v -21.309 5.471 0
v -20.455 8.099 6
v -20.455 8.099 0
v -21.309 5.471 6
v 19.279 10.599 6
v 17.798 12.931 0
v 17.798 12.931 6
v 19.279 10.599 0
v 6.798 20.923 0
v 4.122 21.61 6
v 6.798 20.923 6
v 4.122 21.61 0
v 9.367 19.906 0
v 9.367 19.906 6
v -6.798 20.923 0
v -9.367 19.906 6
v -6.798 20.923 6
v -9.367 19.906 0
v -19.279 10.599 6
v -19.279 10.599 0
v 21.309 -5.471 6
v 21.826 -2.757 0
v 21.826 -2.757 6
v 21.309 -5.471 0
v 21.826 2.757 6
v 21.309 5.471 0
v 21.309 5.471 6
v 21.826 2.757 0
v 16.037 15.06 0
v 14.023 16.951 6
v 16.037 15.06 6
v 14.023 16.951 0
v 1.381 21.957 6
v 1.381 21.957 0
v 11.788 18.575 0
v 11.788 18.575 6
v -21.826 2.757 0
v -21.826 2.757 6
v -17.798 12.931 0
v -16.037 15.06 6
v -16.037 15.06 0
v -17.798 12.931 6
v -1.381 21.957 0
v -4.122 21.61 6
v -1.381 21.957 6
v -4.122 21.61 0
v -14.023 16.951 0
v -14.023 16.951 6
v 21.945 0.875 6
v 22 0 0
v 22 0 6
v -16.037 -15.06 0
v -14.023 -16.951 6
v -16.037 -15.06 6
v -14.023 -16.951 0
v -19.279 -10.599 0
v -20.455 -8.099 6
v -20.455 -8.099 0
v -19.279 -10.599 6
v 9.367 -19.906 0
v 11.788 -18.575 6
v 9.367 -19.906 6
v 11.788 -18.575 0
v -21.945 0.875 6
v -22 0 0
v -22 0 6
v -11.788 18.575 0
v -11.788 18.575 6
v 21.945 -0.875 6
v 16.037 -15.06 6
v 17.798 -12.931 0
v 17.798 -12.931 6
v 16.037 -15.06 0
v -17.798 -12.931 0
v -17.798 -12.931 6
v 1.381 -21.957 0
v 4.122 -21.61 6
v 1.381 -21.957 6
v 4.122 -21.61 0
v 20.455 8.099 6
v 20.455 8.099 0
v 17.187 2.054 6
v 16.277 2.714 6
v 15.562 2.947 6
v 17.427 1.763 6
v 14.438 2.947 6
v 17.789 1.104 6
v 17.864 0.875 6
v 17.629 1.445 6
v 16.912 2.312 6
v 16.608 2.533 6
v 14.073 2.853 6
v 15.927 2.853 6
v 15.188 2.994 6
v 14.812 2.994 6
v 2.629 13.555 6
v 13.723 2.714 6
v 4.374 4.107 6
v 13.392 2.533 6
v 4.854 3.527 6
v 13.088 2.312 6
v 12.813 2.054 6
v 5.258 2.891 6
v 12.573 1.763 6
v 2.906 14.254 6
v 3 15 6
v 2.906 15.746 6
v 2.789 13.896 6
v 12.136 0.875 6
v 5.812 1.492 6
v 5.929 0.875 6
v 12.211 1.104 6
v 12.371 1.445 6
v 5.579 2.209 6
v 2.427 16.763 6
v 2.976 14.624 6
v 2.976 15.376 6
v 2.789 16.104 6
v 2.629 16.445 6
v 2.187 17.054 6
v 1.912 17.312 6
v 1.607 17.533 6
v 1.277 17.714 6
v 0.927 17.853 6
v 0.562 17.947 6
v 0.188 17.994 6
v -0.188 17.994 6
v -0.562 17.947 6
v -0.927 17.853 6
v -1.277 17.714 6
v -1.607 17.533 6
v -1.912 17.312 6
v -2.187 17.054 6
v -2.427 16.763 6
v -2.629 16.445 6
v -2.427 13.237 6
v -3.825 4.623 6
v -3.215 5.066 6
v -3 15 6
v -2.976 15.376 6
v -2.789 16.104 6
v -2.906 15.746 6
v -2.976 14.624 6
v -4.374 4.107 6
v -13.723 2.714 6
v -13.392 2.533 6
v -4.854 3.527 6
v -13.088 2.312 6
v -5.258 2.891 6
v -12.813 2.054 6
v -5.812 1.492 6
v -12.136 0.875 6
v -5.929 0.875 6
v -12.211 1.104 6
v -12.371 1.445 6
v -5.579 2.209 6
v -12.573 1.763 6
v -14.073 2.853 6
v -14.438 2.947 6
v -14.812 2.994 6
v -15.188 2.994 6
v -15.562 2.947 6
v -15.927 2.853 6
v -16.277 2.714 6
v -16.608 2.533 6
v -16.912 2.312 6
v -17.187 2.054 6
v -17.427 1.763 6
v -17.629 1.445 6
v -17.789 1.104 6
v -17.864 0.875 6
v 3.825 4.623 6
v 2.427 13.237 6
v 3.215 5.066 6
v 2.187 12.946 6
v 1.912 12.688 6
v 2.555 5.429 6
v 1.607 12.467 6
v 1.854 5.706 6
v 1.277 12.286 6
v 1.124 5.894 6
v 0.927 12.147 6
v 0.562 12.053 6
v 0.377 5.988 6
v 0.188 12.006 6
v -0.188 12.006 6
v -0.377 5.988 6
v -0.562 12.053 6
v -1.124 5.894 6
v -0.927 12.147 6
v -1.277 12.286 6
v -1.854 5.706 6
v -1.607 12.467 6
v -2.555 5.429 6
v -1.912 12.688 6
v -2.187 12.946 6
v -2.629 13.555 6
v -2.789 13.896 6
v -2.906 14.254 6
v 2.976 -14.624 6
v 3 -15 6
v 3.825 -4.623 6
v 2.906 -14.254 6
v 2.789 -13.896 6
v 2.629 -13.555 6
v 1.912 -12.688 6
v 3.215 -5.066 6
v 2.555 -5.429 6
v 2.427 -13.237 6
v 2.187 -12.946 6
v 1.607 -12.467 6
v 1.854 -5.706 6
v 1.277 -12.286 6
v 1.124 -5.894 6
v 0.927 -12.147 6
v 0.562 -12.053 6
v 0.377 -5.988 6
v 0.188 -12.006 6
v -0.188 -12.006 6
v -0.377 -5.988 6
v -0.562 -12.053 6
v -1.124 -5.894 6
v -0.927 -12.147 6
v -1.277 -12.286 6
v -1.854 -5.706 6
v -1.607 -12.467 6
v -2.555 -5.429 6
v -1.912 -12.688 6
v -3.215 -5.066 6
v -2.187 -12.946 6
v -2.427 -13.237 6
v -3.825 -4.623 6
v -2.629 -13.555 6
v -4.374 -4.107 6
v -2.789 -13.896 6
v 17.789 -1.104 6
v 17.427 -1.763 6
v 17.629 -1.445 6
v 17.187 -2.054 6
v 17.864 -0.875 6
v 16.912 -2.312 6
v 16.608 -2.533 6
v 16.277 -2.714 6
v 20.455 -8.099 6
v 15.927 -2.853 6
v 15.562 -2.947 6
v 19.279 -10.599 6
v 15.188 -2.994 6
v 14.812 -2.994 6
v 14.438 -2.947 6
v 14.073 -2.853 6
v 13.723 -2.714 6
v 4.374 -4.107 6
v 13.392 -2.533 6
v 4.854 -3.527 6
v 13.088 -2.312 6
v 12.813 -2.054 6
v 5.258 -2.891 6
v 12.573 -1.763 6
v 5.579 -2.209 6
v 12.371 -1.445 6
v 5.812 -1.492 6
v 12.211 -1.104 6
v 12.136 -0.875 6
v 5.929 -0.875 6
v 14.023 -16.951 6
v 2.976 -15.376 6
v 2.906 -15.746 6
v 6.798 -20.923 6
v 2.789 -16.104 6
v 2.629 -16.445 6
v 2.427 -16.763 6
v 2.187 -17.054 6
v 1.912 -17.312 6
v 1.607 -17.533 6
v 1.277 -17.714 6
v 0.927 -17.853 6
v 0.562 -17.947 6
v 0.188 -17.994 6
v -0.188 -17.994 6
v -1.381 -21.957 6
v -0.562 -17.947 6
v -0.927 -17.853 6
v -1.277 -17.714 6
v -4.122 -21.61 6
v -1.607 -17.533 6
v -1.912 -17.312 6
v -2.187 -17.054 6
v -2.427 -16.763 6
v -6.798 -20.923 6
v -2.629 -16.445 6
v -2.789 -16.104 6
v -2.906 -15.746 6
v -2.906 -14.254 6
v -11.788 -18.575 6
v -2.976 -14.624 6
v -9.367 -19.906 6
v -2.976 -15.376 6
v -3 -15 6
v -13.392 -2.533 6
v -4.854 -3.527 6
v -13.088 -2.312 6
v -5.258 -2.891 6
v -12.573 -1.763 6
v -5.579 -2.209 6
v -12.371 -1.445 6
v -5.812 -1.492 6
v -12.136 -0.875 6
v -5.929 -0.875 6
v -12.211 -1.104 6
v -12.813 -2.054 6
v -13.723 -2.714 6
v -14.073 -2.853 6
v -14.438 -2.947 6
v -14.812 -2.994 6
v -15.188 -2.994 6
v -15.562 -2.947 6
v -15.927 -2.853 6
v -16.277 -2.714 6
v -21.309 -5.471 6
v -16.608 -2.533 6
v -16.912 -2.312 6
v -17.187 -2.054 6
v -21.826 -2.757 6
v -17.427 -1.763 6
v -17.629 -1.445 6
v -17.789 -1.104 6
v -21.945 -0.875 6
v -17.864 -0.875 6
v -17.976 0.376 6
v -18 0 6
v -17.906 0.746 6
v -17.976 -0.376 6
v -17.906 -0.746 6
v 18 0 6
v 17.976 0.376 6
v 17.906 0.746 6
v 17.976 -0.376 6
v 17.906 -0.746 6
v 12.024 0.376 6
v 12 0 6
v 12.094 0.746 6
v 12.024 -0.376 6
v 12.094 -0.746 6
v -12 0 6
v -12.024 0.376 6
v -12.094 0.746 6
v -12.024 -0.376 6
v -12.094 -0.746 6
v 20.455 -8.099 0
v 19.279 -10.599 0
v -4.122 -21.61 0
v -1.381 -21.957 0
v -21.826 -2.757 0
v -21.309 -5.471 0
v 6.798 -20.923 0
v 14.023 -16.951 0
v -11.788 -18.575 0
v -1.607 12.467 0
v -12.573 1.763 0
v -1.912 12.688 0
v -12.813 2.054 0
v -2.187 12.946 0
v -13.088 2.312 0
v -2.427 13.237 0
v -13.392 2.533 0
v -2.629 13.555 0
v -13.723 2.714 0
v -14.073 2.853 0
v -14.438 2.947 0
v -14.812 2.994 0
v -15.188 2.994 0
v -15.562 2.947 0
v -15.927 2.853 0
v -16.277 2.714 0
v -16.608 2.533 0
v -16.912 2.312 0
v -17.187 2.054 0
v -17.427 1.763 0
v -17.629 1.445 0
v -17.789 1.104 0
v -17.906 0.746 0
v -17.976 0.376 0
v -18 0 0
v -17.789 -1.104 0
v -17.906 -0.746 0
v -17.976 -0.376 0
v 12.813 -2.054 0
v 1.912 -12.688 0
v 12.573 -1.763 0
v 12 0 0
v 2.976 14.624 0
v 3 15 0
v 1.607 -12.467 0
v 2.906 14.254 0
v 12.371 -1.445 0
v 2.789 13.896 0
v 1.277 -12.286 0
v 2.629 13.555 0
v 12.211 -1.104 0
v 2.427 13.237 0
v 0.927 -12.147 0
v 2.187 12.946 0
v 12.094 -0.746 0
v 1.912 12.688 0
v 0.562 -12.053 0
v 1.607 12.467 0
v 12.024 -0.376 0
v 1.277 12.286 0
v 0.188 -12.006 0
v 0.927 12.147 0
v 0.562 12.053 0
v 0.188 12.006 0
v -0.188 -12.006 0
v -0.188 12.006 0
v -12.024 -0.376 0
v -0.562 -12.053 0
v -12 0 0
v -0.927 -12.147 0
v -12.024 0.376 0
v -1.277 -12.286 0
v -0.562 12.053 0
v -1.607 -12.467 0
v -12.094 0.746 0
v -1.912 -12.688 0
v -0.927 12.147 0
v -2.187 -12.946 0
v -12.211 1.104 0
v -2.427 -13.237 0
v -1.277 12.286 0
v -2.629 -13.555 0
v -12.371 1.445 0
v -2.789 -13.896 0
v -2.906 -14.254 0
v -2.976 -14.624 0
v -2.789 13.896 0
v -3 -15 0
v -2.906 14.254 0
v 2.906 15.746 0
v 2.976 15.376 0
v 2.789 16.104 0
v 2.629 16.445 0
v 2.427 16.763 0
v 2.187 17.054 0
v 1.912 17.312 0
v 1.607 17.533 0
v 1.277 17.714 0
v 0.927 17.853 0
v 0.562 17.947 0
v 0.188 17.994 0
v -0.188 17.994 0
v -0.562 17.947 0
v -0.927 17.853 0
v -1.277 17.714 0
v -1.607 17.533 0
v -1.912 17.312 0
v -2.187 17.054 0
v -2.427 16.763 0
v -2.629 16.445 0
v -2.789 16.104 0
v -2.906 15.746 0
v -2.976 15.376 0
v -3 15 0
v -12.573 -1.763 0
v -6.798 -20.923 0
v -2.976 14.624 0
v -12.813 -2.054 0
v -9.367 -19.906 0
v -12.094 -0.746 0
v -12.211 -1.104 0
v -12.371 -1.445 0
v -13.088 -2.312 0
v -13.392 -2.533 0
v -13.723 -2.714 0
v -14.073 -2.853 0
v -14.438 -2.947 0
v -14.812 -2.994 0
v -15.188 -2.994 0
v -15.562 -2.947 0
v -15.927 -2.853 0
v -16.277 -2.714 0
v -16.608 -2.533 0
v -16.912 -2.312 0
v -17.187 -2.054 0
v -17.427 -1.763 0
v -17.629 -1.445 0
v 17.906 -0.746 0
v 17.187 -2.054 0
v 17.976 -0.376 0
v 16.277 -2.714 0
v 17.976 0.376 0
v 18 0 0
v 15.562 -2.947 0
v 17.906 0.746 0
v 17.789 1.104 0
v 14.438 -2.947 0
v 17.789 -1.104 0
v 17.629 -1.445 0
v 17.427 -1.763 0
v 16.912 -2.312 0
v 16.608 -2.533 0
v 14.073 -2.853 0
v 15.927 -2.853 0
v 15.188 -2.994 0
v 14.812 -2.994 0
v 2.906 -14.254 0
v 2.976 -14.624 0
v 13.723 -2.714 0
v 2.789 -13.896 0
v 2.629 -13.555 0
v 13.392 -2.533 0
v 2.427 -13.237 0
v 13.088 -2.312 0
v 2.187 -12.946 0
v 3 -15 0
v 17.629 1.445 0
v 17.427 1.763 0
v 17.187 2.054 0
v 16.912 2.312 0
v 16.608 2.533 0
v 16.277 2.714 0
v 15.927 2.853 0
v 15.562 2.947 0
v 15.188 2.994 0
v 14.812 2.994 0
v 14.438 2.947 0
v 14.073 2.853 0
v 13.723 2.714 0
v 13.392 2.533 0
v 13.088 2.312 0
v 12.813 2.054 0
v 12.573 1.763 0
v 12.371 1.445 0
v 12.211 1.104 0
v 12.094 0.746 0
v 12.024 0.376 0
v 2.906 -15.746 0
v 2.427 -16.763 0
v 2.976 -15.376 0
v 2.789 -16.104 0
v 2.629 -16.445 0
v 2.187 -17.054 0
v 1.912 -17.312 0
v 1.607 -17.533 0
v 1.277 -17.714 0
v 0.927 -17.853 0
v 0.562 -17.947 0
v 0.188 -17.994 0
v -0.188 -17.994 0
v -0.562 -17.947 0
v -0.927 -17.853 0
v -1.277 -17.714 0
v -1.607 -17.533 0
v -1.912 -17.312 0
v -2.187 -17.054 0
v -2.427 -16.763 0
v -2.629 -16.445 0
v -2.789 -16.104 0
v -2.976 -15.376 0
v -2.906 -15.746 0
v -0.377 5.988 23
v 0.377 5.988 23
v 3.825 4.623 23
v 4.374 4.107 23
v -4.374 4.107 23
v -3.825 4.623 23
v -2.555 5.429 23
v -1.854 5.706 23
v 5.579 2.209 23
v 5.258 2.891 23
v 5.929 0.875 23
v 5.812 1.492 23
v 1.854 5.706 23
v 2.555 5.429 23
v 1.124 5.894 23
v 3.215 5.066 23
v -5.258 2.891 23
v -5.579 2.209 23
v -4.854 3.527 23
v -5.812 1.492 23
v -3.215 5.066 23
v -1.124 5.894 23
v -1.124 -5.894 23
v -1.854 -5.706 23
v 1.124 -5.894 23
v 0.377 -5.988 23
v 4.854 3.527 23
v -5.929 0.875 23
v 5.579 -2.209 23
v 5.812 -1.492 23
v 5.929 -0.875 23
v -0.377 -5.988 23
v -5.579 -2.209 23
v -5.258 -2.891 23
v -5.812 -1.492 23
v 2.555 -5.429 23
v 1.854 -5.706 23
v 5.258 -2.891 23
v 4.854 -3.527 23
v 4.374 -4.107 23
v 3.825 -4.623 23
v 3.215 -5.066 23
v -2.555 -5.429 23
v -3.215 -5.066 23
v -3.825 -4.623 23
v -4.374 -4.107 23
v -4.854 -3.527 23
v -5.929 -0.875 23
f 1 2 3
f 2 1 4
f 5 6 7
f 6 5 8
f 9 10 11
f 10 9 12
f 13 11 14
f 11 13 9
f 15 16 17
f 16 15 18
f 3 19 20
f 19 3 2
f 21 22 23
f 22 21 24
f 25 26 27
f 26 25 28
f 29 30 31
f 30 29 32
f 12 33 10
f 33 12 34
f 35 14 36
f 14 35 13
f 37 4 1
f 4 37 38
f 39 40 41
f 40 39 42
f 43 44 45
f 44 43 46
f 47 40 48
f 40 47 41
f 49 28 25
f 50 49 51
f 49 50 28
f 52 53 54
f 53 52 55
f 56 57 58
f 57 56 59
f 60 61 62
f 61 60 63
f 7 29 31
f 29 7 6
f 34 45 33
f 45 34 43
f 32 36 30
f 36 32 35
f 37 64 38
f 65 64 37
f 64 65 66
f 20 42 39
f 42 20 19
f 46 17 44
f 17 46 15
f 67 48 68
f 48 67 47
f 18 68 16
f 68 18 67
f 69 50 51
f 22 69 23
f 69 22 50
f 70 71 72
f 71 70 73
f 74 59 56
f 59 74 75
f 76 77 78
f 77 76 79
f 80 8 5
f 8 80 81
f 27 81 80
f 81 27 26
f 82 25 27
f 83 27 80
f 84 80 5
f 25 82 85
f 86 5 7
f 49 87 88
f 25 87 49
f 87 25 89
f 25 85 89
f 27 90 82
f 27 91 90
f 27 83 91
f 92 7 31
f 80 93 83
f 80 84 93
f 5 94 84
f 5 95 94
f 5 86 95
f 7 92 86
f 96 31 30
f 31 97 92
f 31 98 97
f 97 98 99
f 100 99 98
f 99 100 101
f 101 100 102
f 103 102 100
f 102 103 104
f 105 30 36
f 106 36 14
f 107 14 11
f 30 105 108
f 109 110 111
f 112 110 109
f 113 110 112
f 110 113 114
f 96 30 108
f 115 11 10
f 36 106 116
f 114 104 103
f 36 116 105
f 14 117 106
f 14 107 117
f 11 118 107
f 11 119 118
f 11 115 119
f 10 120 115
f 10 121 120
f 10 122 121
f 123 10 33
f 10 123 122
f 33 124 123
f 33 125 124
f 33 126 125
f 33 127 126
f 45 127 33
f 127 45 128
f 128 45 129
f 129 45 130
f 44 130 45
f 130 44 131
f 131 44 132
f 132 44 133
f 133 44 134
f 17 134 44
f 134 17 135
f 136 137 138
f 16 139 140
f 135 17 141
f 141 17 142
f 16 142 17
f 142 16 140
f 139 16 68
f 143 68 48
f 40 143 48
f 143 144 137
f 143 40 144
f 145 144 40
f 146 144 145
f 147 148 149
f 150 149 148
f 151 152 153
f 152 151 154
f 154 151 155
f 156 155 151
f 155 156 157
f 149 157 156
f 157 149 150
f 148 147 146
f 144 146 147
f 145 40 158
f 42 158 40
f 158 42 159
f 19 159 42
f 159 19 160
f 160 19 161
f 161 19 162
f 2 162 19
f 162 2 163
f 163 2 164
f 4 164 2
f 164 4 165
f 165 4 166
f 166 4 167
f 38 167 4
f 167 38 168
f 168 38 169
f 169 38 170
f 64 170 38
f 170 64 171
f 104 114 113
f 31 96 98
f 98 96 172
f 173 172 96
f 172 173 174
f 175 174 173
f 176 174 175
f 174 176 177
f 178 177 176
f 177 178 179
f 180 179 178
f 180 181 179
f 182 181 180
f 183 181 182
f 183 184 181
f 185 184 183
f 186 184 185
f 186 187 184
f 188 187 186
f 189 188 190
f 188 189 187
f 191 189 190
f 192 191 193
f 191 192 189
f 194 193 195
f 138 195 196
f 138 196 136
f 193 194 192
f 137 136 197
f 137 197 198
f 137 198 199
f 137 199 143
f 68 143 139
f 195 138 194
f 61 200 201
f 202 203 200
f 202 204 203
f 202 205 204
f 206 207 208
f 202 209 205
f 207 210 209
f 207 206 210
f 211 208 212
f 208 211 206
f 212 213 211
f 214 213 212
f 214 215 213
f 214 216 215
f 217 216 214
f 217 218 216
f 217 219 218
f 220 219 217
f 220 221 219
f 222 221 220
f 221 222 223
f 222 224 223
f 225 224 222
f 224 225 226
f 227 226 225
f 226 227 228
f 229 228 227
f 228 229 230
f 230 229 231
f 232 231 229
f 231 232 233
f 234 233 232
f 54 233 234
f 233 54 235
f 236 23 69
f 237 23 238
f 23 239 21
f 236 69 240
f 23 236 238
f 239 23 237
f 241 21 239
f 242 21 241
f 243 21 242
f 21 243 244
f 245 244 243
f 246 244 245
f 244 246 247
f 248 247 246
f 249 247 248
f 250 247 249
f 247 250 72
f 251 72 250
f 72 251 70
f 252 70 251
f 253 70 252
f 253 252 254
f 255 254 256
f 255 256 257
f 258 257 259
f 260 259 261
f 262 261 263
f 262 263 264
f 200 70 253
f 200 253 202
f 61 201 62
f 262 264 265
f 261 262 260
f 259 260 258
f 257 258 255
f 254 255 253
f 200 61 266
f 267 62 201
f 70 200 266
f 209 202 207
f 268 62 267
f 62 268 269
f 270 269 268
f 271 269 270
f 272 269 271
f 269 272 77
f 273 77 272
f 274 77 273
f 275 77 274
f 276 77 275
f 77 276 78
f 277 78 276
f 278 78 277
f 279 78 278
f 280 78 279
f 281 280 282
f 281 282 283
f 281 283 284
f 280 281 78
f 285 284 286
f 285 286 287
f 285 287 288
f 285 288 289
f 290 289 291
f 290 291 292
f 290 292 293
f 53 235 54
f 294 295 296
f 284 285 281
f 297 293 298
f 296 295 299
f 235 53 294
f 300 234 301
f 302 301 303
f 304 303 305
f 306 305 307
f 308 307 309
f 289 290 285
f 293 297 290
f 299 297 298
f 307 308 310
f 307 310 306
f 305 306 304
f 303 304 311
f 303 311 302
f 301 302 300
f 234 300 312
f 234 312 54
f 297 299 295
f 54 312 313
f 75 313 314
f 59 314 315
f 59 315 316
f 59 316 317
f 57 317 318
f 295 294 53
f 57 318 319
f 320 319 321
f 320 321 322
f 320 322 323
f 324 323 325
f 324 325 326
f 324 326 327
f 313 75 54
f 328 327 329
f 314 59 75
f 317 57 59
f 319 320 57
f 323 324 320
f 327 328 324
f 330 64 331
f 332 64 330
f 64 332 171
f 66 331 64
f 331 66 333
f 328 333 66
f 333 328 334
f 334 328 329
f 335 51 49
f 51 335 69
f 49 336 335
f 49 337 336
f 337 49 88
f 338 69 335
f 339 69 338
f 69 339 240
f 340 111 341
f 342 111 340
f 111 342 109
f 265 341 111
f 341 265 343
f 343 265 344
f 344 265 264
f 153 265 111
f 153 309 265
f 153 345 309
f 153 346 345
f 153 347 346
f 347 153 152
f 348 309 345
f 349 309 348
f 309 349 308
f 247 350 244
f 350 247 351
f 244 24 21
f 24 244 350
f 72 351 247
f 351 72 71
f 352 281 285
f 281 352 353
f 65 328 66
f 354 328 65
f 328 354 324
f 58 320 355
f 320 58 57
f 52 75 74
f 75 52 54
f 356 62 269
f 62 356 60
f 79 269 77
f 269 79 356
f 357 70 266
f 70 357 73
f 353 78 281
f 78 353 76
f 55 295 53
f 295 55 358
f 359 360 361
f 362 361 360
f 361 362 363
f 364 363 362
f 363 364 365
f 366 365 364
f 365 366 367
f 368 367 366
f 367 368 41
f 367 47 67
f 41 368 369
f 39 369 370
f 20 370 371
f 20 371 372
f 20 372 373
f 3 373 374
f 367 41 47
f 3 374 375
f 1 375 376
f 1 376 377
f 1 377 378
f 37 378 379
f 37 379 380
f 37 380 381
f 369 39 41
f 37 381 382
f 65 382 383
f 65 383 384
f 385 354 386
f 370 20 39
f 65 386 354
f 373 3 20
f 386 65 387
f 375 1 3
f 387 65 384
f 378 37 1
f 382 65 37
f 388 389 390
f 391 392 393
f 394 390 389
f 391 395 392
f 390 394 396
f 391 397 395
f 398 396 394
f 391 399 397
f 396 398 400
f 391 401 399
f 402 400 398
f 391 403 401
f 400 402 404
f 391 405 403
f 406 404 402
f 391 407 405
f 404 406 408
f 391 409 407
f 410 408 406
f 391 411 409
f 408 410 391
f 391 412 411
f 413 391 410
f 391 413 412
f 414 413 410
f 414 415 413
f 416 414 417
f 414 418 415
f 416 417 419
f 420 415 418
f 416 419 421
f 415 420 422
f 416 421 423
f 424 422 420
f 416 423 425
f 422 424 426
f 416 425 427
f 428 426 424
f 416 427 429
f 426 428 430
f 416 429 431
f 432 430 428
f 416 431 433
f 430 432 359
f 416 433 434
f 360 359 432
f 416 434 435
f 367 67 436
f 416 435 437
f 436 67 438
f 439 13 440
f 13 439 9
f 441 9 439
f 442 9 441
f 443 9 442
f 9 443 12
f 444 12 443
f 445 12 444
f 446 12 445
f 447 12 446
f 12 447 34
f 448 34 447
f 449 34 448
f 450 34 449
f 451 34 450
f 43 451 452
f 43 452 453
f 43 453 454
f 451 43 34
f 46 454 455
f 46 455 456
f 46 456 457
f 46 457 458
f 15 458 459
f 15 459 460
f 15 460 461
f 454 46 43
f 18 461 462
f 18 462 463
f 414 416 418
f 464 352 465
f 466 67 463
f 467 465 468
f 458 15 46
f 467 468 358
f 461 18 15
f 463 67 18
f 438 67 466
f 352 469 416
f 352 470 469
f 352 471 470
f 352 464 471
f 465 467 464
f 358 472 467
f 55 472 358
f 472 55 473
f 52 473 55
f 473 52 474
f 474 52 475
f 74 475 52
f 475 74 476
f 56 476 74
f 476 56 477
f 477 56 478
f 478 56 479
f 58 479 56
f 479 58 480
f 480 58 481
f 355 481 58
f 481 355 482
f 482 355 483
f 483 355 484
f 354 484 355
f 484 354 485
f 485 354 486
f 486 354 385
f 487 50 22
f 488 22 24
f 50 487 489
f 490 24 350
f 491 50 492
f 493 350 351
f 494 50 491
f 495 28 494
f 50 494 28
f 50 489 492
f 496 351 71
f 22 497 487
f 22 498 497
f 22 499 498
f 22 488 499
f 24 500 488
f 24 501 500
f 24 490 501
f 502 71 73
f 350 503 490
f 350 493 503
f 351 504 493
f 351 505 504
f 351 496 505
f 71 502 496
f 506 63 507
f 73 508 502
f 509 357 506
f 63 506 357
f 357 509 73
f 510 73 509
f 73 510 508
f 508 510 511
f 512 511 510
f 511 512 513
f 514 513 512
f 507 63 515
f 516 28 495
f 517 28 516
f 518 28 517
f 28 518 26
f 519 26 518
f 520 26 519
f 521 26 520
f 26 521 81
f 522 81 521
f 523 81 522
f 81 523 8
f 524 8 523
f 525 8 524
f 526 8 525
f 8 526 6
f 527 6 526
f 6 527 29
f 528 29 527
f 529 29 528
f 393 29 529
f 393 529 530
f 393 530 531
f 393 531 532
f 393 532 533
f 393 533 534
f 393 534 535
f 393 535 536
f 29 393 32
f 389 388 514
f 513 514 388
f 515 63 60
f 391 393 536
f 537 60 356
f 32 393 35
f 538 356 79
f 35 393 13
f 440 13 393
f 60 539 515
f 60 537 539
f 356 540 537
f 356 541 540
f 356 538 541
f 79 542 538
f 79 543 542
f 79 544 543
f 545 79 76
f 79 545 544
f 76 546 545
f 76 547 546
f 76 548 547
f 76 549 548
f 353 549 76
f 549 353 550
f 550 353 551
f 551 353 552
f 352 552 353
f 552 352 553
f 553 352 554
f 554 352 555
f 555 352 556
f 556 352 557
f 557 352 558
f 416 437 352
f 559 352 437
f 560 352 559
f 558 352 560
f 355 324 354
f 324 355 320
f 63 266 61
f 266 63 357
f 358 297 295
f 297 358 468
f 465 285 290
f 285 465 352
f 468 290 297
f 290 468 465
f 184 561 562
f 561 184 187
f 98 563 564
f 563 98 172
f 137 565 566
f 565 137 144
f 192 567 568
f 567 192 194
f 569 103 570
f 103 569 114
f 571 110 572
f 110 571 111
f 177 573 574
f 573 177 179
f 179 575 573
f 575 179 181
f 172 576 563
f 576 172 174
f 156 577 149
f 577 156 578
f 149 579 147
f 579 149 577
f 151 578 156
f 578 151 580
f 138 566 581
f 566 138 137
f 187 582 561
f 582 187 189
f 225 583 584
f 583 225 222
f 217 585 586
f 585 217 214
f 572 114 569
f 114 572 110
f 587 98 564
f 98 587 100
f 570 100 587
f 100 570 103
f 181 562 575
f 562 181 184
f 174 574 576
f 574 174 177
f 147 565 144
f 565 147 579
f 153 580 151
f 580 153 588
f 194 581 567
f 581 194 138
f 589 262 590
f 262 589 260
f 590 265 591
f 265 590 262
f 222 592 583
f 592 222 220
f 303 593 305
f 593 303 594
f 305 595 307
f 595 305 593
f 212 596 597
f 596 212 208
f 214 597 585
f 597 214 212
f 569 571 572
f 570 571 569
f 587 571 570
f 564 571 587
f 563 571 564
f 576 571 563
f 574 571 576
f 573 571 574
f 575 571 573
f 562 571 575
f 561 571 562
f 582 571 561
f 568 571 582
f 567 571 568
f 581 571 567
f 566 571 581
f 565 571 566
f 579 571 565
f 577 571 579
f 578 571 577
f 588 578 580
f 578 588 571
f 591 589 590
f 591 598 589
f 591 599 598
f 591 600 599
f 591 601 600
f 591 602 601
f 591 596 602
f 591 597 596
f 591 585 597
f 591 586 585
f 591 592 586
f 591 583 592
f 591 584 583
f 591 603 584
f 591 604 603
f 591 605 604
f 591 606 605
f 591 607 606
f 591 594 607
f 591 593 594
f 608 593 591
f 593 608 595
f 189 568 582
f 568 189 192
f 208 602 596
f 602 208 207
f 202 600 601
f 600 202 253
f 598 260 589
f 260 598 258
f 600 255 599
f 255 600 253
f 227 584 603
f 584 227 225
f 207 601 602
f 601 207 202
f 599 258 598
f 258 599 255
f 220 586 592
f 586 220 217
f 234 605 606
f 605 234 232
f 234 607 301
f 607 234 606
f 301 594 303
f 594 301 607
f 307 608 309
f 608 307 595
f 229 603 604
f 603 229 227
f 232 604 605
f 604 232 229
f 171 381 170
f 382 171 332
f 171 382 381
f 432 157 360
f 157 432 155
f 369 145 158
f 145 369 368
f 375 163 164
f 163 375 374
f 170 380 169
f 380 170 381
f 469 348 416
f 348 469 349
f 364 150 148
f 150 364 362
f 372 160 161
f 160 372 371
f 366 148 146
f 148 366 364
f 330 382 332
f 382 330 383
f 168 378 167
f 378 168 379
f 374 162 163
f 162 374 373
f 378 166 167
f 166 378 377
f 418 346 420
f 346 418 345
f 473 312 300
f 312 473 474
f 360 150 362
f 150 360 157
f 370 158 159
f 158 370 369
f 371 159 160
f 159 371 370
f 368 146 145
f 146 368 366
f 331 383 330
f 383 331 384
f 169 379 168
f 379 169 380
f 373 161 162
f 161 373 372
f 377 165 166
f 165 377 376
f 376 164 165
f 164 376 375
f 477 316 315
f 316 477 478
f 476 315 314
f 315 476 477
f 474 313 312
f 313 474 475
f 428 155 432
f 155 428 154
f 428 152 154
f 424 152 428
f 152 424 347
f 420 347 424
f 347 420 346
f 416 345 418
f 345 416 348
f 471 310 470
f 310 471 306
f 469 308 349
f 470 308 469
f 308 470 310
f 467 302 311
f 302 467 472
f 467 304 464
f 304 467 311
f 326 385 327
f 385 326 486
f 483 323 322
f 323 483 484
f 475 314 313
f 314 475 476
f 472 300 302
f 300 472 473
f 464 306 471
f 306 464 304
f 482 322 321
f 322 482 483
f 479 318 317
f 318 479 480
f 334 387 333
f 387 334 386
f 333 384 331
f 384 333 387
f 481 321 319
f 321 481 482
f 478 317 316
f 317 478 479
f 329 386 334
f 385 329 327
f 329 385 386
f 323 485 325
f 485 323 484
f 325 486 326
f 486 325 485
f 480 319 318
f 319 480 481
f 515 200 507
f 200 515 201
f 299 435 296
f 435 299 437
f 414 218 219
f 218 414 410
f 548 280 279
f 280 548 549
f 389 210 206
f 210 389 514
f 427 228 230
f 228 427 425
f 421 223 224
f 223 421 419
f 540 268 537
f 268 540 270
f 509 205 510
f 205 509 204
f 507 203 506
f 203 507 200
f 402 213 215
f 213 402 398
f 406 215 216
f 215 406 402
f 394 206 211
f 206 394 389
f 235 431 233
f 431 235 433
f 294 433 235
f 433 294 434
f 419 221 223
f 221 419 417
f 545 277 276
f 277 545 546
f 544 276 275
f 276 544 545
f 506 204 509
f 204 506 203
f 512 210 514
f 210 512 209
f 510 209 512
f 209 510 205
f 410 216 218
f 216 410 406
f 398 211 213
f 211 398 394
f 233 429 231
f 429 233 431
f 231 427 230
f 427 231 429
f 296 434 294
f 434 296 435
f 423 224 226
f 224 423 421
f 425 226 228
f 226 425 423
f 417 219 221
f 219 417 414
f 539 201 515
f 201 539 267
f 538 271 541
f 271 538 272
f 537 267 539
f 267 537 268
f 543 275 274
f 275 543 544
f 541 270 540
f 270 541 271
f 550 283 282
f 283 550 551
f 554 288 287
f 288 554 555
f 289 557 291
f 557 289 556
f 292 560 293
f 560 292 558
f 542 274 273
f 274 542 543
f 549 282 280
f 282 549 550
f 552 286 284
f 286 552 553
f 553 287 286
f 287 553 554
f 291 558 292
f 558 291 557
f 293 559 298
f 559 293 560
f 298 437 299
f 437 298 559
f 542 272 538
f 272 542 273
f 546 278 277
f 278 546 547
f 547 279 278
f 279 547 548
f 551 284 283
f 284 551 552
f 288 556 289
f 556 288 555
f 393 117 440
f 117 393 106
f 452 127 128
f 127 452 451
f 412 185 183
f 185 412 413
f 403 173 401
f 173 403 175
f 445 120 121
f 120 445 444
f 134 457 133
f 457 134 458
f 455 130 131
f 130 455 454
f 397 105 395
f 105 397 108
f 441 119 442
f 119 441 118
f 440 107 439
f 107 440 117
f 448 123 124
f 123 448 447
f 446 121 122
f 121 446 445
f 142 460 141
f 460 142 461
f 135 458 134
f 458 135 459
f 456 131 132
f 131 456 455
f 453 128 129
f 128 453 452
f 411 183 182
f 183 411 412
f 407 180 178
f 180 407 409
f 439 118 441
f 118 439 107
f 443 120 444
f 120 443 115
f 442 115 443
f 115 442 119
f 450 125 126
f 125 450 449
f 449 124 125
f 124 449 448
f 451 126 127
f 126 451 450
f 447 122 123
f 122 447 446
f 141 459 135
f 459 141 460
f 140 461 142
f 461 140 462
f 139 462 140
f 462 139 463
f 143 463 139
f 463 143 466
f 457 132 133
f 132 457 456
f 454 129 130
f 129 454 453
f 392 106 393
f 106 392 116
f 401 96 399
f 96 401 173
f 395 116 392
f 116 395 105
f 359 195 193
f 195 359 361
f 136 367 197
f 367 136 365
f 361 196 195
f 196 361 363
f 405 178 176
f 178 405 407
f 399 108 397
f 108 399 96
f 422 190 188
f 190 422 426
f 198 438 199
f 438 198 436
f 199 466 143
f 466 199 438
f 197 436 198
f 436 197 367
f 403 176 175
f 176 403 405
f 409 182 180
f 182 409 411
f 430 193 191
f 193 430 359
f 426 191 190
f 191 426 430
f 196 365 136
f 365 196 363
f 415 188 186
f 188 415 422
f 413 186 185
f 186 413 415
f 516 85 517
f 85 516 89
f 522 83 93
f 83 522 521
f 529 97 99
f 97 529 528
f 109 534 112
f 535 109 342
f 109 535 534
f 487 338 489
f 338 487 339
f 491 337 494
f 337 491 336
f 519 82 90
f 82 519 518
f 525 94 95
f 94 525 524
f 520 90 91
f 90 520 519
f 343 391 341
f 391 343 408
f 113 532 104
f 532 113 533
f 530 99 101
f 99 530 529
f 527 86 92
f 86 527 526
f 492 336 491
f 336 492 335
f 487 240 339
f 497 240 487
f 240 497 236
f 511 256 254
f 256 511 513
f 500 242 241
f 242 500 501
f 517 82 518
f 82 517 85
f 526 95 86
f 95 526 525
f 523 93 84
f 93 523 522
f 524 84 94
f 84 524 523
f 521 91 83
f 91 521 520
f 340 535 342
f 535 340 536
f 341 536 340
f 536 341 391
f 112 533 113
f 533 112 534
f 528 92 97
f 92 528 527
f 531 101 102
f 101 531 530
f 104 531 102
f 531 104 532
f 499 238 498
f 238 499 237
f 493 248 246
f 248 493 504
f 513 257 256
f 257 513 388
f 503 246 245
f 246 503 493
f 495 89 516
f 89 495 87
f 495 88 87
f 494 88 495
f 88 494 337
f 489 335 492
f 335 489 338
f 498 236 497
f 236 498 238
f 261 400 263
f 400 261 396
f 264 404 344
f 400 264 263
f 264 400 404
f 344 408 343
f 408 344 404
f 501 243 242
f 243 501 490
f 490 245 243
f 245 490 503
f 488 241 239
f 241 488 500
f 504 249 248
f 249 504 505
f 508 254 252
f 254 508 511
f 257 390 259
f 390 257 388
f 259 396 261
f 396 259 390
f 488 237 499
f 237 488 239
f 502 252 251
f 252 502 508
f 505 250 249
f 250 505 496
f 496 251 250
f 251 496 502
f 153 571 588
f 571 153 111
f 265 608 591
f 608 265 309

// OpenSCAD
$fn = 50;


difference() {
	union() {
		cylinder(h = 6, r = 22.0000000000);
		translate(v = [0, 0, 3.0000000000]) {
			cylinder(h = 20, r = 6.0000000000);
		}
	}
	union() {
		translate(v = [-15.0000000000, 0.0000000000, -50.0000000000]) {
			cylinder(h = 100, r = 3.0000000000);
		}
		translate(v = [0.0000000000, -15.0000000000, -50.0000000000]) {
			cylinder(h = 100, r = 3.0000000000);
		}
		translate(v = [0.0000000000, 15.0000000000, -50.0000000000]) {
			cylinder(h = 100, r = 3.0000000000);
		}
		translate(v = [15.0000000000, 0.0000000000, -50.0000000000]) {
			cylinder(h = 100, r = 3.0000000000);
		}
		translate(v = [-27.0000000000, -0.8750000000, 6]) {
			cube(size = [54, 1.7500000000, 20]);
		}
	}
}
